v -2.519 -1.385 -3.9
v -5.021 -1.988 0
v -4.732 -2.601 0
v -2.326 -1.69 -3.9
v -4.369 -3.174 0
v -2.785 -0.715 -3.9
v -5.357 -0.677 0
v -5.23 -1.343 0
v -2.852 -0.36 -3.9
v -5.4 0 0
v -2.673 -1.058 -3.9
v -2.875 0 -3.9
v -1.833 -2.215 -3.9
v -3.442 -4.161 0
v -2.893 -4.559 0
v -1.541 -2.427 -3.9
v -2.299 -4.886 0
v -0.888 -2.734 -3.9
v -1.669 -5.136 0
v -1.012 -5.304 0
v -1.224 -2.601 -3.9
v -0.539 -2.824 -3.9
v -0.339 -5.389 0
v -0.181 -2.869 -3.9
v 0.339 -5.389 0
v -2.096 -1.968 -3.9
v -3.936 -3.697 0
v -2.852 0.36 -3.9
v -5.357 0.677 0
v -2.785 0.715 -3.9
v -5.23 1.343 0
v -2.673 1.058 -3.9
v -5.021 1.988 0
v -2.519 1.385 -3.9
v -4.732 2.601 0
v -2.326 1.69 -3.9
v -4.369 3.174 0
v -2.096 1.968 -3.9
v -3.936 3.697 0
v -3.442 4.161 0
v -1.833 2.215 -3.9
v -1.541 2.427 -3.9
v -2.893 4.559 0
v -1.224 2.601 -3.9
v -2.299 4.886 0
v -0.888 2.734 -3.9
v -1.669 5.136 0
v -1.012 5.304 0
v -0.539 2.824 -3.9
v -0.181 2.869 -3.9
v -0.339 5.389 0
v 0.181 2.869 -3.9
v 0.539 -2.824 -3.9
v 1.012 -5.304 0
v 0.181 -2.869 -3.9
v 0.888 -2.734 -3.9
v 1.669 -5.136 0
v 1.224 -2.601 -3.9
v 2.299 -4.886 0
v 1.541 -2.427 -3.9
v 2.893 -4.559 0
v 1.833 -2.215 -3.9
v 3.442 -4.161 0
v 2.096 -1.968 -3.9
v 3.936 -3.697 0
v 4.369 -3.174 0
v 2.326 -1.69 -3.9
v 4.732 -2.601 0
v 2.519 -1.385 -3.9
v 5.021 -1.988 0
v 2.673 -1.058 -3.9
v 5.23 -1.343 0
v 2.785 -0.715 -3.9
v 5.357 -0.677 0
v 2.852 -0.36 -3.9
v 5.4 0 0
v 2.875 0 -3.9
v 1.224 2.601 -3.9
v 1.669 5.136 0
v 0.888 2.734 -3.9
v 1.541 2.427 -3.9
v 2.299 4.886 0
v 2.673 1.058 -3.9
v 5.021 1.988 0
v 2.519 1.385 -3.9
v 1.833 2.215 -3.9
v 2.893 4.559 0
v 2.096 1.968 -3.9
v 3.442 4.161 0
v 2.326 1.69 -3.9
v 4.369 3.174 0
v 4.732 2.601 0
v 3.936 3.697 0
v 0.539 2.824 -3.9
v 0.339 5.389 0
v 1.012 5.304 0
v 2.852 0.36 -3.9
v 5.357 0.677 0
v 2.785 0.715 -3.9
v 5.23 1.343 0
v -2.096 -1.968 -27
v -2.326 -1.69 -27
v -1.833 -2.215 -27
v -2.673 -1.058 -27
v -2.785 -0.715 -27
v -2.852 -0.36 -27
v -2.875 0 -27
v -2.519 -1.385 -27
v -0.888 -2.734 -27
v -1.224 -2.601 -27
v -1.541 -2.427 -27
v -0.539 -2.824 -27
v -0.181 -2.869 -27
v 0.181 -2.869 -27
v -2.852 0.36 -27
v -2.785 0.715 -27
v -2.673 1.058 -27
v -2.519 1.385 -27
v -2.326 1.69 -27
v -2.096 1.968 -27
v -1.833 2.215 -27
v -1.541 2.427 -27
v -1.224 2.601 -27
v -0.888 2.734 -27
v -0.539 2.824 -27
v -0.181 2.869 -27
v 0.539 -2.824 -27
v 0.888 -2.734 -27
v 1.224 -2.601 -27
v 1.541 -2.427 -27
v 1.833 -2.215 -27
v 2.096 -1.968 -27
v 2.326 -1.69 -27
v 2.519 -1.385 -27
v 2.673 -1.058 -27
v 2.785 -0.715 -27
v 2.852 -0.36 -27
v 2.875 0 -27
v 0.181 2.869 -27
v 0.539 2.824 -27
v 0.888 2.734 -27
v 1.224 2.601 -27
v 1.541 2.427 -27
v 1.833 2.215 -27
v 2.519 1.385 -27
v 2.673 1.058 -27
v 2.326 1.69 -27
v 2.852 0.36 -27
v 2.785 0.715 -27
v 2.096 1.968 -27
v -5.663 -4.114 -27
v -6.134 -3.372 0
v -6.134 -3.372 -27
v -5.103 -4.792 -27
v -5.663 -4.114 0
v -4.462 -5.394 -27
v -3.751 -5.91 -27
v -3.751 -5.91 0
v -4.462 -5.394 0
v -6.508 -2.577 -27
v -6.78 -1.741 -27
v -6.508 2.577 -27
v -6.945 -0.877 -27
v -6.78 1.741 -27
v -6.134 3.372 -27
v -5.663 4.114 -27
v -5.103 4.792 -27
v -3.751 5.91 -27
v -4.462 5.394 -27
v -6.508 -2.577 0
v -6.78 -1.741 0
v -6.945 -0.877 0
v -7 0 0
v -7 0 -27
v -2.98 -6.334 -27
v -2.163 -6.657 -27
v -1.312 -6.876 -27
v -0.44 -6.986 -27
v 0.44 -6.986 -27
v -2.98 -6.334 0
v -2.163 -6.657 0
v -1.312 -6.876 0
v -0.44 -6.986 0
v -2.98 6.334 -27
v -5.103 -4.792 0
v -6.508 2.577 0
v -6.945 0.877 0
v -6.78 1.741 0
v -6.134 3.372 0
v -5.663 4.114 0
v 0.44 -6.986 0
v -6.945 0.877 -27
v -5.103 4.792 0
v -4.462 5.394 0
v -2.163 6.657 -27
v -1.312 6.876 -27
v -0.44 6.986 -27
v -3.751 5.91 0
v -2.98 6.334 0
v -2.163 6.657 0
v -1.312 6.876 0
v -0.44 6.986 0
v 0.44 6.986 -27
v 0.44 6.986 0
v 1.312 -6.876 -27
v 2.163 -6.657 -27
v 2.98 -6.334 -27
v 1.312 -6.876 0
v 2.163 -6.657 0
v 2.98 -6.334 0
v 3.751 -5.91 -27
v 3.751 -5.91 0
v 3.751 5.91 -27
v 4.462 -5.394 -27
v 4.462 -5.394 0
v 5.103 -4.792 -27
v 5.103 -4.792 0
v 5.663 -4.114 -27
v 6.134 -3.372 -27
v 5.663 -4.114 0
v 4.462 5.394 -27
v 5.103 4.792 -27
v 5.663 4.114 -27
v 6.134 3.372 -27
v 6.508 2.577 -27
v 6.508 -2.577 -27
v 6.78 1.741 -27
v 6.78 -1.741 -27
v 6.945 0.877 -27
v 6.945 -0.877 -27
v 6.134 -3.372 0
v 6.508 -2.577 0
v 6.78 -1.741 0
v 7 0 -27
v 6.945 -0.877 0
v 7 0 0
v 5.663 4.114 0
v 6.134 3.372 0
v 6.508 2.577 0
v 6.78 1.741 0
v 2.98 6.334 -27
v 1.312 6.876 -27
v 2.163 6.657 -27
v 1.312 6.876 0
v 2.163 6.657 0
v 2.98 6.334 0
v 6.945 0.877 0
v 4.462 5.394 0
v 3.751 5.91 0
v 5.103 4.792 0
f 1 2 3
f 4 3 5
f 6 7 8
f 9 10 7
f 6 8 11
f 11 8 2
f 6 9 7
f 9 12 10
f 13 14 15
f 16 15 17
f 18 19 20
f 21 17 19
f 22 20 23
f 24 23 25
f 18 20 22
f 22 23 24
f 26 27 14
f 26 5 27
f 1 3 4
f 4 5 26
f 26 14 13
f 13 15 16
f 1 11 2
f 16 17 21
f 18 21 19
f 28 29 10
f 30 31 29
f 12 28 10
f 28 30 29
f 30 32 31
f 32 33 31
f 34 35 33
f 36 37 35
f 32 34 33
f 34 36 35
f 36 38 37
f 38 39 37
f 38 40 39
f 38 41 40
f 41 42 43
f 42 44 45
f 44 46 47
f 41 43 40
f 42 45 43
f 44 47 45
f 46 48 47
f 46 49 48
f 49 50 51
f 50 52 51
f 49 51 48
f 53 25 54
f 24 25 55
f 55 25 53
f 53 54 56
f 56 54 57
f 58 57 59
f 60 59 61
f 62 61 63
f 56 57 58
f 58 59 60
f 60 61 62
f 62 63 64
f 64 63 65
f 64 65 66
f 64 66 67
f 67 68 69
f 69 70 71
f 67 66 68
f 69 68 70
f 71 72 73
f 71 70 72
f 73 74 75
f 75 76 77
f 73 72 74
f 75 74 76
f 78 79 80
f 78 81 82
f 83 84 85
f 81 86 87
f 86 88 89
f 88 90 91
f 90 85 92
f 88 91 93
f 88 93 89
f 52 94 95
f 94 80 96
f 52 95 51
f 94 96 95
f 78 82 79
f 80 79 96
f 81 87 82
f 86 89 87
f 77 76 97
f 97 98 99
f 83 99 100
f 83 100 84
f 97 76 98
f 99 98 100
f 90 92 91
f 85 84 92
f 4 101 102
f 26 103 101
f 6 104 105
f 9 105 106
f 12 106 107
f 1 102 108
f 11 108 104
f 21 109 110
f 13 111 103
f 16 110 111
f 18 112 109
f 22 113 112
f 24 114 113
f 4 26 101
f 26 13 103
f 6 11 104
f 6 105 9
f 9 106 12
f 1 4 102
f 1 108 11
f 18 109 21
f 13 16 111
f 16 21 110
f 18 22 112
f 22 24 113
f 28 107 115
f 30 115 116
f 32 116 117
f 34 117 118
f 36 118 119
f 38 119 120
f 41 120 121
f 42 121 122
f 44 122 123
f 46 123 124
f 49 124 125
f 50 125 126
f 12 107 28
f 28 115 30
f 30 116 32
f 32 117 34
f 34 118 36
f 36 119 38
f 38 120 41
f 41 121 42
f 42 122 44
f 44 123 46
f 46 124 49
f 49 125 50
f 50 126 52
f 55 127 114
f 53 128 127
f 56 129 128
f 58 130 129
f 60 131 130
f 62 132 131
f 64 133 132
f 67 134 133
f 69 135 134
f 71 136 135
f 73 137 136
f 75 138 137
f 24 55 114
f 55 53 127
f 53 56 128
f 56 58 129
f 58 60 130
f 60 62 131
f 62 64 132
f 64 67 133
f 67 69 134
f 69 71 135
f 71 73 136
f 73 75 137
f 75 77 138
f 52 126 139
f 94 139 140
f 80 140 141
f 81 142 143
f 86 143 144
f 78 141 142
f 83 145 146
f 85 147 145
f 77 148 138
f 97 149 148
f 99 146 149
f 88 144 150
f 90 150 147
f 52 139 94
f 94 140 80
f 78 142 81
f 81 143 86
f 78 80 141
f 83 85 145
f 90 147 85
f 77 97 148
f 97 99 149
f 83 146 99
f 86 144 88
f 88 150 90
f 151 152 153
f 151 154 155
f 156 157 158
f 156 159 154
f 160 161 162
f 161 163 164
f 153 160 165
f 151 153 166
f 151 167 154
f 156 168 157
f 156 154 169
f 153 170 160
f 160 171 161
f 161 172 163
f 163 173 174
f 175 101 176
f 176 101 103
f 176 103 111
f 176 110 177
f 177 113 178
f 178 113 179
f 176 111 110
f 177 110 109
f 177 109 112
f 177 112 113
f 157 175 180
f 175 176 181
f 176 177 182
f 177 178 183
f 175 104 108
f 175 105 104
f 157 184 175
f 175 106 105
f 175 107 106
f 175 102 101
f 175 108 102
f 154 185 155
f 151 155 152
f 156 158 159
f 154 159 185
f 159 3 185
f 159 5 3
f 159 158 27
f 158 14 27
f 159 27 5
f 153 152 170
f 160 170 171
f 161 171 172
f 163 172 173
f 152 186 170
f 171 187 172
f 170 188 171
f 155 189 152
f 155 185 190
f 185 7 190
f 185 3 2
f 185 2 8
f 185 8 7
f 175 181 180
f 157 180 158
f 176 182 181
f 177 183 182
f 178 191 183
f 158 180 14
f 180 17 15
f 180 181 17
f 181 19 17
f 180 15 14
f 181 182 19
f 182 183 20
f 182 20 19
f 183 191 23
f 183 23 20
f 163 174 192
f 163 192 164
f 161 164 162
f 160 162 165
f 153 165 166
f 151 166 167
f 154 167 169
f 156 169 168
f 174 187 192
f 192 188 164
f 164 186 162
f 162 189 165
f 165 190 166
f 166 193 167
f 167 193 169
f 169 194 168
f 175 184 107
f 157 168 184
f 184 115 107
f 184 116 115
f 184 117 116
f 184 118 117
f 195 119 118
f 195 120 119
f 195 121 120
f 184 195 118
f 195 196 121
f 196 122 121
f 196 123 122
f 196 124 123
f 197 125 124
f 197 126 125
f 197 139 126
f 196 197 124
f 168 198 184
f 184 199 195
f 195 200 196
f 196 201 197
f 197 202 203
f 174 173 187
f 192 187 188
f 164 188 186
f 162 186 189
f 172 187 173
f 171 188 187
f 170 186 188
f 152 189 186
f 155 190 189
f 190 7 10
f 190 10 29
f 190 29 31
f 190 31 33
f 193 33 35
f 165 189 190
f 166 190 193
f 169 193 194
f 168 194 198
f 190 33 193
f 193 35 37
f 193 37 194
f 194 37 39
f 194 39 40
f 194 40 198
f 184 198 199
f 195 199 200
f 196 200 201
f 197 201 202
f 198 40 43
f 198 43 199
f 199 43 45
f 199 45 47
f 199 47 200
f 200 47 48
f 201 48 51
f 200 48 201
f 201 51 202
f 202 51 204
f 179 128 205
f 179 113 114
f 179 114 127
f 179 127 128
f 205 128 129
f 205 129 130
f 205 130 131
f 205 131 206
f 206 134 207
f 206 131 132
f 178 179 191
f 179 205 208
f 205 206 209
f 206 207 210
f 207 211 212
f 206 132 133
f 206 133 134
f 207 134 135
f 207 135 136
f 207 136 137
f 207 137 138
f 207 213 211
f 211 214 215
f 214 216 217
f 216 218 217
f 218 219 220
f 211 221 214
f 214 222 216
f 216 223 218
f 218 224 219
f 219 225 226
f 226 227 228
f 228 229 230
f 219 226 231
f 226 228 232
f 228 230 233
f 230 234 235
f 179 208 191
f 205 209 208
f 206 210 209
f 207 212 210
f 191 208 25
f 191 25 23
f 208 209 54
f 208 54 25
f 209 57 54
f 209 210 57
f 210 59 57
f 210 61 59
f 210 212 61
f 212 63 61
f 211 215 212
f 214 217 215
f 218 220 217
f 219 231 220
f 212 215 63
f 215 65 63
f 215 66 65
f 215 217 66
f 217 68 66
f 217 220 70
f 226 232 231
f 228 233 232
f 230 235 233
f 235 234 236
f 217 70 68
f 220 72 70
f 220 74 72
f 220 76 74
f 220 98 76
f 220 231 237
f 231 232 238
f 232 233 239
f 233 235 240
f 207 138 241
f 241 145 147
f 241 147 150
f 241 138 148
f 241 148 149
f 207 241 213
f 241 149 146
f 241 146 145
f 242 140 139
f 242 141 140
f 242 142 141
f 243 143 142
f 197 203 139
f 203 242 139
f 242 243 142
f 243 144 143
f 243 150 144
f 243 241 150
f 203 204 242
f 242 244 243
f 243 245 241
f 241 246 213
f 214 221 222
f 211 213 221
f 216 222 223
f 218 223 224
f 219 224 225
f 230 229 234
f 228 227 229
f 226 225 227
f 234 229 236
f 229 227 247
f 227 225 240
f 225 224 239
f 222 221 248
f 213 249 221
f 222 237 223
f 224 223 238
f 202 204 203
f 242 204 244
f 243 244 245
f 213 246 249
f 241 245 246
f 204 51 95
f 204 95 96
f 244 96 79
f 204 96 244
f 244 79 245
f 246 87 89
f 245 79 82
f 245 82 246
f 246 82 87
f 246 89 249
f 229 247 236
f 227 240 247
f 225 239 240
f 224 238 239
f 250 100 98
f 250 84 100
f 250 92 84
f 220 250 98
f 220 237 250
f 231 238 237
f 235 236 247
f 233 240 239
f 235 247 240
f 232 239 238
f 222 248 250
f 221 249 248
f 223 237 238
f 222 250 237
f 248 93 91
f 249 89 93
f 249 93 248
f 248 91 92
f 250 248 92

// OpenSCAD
$fn = 50;

difference() {
	union() {
		translate(v = [0, 0, -27.0]) {
			cylinder(h = 27, r = 7.0);
		}
	}
	union() {
		translate(v = [0, 0, 0]) {
			rotate(a = [0, 0, 0]) {
				difference() {
					union() {
						translate(v = [0, 0, -30.0]) {
							cylinder(h = 30, r = 2.6);
						}
						translate(v = [0, 0, -3.9]) {
							cylinder(h = 3.9, r1 = 2.875, r2 = 5.4);
						}
						translate(v = [0, 0, -30.0]) {
							cylinder(h = 30, r = 2.875);
						}
						translate(v = [0, 0, -30.0]) {
							cylinder(h = 30, r = 2.6);
						}
					}
					union();
				}
			}
		}
	}
}
